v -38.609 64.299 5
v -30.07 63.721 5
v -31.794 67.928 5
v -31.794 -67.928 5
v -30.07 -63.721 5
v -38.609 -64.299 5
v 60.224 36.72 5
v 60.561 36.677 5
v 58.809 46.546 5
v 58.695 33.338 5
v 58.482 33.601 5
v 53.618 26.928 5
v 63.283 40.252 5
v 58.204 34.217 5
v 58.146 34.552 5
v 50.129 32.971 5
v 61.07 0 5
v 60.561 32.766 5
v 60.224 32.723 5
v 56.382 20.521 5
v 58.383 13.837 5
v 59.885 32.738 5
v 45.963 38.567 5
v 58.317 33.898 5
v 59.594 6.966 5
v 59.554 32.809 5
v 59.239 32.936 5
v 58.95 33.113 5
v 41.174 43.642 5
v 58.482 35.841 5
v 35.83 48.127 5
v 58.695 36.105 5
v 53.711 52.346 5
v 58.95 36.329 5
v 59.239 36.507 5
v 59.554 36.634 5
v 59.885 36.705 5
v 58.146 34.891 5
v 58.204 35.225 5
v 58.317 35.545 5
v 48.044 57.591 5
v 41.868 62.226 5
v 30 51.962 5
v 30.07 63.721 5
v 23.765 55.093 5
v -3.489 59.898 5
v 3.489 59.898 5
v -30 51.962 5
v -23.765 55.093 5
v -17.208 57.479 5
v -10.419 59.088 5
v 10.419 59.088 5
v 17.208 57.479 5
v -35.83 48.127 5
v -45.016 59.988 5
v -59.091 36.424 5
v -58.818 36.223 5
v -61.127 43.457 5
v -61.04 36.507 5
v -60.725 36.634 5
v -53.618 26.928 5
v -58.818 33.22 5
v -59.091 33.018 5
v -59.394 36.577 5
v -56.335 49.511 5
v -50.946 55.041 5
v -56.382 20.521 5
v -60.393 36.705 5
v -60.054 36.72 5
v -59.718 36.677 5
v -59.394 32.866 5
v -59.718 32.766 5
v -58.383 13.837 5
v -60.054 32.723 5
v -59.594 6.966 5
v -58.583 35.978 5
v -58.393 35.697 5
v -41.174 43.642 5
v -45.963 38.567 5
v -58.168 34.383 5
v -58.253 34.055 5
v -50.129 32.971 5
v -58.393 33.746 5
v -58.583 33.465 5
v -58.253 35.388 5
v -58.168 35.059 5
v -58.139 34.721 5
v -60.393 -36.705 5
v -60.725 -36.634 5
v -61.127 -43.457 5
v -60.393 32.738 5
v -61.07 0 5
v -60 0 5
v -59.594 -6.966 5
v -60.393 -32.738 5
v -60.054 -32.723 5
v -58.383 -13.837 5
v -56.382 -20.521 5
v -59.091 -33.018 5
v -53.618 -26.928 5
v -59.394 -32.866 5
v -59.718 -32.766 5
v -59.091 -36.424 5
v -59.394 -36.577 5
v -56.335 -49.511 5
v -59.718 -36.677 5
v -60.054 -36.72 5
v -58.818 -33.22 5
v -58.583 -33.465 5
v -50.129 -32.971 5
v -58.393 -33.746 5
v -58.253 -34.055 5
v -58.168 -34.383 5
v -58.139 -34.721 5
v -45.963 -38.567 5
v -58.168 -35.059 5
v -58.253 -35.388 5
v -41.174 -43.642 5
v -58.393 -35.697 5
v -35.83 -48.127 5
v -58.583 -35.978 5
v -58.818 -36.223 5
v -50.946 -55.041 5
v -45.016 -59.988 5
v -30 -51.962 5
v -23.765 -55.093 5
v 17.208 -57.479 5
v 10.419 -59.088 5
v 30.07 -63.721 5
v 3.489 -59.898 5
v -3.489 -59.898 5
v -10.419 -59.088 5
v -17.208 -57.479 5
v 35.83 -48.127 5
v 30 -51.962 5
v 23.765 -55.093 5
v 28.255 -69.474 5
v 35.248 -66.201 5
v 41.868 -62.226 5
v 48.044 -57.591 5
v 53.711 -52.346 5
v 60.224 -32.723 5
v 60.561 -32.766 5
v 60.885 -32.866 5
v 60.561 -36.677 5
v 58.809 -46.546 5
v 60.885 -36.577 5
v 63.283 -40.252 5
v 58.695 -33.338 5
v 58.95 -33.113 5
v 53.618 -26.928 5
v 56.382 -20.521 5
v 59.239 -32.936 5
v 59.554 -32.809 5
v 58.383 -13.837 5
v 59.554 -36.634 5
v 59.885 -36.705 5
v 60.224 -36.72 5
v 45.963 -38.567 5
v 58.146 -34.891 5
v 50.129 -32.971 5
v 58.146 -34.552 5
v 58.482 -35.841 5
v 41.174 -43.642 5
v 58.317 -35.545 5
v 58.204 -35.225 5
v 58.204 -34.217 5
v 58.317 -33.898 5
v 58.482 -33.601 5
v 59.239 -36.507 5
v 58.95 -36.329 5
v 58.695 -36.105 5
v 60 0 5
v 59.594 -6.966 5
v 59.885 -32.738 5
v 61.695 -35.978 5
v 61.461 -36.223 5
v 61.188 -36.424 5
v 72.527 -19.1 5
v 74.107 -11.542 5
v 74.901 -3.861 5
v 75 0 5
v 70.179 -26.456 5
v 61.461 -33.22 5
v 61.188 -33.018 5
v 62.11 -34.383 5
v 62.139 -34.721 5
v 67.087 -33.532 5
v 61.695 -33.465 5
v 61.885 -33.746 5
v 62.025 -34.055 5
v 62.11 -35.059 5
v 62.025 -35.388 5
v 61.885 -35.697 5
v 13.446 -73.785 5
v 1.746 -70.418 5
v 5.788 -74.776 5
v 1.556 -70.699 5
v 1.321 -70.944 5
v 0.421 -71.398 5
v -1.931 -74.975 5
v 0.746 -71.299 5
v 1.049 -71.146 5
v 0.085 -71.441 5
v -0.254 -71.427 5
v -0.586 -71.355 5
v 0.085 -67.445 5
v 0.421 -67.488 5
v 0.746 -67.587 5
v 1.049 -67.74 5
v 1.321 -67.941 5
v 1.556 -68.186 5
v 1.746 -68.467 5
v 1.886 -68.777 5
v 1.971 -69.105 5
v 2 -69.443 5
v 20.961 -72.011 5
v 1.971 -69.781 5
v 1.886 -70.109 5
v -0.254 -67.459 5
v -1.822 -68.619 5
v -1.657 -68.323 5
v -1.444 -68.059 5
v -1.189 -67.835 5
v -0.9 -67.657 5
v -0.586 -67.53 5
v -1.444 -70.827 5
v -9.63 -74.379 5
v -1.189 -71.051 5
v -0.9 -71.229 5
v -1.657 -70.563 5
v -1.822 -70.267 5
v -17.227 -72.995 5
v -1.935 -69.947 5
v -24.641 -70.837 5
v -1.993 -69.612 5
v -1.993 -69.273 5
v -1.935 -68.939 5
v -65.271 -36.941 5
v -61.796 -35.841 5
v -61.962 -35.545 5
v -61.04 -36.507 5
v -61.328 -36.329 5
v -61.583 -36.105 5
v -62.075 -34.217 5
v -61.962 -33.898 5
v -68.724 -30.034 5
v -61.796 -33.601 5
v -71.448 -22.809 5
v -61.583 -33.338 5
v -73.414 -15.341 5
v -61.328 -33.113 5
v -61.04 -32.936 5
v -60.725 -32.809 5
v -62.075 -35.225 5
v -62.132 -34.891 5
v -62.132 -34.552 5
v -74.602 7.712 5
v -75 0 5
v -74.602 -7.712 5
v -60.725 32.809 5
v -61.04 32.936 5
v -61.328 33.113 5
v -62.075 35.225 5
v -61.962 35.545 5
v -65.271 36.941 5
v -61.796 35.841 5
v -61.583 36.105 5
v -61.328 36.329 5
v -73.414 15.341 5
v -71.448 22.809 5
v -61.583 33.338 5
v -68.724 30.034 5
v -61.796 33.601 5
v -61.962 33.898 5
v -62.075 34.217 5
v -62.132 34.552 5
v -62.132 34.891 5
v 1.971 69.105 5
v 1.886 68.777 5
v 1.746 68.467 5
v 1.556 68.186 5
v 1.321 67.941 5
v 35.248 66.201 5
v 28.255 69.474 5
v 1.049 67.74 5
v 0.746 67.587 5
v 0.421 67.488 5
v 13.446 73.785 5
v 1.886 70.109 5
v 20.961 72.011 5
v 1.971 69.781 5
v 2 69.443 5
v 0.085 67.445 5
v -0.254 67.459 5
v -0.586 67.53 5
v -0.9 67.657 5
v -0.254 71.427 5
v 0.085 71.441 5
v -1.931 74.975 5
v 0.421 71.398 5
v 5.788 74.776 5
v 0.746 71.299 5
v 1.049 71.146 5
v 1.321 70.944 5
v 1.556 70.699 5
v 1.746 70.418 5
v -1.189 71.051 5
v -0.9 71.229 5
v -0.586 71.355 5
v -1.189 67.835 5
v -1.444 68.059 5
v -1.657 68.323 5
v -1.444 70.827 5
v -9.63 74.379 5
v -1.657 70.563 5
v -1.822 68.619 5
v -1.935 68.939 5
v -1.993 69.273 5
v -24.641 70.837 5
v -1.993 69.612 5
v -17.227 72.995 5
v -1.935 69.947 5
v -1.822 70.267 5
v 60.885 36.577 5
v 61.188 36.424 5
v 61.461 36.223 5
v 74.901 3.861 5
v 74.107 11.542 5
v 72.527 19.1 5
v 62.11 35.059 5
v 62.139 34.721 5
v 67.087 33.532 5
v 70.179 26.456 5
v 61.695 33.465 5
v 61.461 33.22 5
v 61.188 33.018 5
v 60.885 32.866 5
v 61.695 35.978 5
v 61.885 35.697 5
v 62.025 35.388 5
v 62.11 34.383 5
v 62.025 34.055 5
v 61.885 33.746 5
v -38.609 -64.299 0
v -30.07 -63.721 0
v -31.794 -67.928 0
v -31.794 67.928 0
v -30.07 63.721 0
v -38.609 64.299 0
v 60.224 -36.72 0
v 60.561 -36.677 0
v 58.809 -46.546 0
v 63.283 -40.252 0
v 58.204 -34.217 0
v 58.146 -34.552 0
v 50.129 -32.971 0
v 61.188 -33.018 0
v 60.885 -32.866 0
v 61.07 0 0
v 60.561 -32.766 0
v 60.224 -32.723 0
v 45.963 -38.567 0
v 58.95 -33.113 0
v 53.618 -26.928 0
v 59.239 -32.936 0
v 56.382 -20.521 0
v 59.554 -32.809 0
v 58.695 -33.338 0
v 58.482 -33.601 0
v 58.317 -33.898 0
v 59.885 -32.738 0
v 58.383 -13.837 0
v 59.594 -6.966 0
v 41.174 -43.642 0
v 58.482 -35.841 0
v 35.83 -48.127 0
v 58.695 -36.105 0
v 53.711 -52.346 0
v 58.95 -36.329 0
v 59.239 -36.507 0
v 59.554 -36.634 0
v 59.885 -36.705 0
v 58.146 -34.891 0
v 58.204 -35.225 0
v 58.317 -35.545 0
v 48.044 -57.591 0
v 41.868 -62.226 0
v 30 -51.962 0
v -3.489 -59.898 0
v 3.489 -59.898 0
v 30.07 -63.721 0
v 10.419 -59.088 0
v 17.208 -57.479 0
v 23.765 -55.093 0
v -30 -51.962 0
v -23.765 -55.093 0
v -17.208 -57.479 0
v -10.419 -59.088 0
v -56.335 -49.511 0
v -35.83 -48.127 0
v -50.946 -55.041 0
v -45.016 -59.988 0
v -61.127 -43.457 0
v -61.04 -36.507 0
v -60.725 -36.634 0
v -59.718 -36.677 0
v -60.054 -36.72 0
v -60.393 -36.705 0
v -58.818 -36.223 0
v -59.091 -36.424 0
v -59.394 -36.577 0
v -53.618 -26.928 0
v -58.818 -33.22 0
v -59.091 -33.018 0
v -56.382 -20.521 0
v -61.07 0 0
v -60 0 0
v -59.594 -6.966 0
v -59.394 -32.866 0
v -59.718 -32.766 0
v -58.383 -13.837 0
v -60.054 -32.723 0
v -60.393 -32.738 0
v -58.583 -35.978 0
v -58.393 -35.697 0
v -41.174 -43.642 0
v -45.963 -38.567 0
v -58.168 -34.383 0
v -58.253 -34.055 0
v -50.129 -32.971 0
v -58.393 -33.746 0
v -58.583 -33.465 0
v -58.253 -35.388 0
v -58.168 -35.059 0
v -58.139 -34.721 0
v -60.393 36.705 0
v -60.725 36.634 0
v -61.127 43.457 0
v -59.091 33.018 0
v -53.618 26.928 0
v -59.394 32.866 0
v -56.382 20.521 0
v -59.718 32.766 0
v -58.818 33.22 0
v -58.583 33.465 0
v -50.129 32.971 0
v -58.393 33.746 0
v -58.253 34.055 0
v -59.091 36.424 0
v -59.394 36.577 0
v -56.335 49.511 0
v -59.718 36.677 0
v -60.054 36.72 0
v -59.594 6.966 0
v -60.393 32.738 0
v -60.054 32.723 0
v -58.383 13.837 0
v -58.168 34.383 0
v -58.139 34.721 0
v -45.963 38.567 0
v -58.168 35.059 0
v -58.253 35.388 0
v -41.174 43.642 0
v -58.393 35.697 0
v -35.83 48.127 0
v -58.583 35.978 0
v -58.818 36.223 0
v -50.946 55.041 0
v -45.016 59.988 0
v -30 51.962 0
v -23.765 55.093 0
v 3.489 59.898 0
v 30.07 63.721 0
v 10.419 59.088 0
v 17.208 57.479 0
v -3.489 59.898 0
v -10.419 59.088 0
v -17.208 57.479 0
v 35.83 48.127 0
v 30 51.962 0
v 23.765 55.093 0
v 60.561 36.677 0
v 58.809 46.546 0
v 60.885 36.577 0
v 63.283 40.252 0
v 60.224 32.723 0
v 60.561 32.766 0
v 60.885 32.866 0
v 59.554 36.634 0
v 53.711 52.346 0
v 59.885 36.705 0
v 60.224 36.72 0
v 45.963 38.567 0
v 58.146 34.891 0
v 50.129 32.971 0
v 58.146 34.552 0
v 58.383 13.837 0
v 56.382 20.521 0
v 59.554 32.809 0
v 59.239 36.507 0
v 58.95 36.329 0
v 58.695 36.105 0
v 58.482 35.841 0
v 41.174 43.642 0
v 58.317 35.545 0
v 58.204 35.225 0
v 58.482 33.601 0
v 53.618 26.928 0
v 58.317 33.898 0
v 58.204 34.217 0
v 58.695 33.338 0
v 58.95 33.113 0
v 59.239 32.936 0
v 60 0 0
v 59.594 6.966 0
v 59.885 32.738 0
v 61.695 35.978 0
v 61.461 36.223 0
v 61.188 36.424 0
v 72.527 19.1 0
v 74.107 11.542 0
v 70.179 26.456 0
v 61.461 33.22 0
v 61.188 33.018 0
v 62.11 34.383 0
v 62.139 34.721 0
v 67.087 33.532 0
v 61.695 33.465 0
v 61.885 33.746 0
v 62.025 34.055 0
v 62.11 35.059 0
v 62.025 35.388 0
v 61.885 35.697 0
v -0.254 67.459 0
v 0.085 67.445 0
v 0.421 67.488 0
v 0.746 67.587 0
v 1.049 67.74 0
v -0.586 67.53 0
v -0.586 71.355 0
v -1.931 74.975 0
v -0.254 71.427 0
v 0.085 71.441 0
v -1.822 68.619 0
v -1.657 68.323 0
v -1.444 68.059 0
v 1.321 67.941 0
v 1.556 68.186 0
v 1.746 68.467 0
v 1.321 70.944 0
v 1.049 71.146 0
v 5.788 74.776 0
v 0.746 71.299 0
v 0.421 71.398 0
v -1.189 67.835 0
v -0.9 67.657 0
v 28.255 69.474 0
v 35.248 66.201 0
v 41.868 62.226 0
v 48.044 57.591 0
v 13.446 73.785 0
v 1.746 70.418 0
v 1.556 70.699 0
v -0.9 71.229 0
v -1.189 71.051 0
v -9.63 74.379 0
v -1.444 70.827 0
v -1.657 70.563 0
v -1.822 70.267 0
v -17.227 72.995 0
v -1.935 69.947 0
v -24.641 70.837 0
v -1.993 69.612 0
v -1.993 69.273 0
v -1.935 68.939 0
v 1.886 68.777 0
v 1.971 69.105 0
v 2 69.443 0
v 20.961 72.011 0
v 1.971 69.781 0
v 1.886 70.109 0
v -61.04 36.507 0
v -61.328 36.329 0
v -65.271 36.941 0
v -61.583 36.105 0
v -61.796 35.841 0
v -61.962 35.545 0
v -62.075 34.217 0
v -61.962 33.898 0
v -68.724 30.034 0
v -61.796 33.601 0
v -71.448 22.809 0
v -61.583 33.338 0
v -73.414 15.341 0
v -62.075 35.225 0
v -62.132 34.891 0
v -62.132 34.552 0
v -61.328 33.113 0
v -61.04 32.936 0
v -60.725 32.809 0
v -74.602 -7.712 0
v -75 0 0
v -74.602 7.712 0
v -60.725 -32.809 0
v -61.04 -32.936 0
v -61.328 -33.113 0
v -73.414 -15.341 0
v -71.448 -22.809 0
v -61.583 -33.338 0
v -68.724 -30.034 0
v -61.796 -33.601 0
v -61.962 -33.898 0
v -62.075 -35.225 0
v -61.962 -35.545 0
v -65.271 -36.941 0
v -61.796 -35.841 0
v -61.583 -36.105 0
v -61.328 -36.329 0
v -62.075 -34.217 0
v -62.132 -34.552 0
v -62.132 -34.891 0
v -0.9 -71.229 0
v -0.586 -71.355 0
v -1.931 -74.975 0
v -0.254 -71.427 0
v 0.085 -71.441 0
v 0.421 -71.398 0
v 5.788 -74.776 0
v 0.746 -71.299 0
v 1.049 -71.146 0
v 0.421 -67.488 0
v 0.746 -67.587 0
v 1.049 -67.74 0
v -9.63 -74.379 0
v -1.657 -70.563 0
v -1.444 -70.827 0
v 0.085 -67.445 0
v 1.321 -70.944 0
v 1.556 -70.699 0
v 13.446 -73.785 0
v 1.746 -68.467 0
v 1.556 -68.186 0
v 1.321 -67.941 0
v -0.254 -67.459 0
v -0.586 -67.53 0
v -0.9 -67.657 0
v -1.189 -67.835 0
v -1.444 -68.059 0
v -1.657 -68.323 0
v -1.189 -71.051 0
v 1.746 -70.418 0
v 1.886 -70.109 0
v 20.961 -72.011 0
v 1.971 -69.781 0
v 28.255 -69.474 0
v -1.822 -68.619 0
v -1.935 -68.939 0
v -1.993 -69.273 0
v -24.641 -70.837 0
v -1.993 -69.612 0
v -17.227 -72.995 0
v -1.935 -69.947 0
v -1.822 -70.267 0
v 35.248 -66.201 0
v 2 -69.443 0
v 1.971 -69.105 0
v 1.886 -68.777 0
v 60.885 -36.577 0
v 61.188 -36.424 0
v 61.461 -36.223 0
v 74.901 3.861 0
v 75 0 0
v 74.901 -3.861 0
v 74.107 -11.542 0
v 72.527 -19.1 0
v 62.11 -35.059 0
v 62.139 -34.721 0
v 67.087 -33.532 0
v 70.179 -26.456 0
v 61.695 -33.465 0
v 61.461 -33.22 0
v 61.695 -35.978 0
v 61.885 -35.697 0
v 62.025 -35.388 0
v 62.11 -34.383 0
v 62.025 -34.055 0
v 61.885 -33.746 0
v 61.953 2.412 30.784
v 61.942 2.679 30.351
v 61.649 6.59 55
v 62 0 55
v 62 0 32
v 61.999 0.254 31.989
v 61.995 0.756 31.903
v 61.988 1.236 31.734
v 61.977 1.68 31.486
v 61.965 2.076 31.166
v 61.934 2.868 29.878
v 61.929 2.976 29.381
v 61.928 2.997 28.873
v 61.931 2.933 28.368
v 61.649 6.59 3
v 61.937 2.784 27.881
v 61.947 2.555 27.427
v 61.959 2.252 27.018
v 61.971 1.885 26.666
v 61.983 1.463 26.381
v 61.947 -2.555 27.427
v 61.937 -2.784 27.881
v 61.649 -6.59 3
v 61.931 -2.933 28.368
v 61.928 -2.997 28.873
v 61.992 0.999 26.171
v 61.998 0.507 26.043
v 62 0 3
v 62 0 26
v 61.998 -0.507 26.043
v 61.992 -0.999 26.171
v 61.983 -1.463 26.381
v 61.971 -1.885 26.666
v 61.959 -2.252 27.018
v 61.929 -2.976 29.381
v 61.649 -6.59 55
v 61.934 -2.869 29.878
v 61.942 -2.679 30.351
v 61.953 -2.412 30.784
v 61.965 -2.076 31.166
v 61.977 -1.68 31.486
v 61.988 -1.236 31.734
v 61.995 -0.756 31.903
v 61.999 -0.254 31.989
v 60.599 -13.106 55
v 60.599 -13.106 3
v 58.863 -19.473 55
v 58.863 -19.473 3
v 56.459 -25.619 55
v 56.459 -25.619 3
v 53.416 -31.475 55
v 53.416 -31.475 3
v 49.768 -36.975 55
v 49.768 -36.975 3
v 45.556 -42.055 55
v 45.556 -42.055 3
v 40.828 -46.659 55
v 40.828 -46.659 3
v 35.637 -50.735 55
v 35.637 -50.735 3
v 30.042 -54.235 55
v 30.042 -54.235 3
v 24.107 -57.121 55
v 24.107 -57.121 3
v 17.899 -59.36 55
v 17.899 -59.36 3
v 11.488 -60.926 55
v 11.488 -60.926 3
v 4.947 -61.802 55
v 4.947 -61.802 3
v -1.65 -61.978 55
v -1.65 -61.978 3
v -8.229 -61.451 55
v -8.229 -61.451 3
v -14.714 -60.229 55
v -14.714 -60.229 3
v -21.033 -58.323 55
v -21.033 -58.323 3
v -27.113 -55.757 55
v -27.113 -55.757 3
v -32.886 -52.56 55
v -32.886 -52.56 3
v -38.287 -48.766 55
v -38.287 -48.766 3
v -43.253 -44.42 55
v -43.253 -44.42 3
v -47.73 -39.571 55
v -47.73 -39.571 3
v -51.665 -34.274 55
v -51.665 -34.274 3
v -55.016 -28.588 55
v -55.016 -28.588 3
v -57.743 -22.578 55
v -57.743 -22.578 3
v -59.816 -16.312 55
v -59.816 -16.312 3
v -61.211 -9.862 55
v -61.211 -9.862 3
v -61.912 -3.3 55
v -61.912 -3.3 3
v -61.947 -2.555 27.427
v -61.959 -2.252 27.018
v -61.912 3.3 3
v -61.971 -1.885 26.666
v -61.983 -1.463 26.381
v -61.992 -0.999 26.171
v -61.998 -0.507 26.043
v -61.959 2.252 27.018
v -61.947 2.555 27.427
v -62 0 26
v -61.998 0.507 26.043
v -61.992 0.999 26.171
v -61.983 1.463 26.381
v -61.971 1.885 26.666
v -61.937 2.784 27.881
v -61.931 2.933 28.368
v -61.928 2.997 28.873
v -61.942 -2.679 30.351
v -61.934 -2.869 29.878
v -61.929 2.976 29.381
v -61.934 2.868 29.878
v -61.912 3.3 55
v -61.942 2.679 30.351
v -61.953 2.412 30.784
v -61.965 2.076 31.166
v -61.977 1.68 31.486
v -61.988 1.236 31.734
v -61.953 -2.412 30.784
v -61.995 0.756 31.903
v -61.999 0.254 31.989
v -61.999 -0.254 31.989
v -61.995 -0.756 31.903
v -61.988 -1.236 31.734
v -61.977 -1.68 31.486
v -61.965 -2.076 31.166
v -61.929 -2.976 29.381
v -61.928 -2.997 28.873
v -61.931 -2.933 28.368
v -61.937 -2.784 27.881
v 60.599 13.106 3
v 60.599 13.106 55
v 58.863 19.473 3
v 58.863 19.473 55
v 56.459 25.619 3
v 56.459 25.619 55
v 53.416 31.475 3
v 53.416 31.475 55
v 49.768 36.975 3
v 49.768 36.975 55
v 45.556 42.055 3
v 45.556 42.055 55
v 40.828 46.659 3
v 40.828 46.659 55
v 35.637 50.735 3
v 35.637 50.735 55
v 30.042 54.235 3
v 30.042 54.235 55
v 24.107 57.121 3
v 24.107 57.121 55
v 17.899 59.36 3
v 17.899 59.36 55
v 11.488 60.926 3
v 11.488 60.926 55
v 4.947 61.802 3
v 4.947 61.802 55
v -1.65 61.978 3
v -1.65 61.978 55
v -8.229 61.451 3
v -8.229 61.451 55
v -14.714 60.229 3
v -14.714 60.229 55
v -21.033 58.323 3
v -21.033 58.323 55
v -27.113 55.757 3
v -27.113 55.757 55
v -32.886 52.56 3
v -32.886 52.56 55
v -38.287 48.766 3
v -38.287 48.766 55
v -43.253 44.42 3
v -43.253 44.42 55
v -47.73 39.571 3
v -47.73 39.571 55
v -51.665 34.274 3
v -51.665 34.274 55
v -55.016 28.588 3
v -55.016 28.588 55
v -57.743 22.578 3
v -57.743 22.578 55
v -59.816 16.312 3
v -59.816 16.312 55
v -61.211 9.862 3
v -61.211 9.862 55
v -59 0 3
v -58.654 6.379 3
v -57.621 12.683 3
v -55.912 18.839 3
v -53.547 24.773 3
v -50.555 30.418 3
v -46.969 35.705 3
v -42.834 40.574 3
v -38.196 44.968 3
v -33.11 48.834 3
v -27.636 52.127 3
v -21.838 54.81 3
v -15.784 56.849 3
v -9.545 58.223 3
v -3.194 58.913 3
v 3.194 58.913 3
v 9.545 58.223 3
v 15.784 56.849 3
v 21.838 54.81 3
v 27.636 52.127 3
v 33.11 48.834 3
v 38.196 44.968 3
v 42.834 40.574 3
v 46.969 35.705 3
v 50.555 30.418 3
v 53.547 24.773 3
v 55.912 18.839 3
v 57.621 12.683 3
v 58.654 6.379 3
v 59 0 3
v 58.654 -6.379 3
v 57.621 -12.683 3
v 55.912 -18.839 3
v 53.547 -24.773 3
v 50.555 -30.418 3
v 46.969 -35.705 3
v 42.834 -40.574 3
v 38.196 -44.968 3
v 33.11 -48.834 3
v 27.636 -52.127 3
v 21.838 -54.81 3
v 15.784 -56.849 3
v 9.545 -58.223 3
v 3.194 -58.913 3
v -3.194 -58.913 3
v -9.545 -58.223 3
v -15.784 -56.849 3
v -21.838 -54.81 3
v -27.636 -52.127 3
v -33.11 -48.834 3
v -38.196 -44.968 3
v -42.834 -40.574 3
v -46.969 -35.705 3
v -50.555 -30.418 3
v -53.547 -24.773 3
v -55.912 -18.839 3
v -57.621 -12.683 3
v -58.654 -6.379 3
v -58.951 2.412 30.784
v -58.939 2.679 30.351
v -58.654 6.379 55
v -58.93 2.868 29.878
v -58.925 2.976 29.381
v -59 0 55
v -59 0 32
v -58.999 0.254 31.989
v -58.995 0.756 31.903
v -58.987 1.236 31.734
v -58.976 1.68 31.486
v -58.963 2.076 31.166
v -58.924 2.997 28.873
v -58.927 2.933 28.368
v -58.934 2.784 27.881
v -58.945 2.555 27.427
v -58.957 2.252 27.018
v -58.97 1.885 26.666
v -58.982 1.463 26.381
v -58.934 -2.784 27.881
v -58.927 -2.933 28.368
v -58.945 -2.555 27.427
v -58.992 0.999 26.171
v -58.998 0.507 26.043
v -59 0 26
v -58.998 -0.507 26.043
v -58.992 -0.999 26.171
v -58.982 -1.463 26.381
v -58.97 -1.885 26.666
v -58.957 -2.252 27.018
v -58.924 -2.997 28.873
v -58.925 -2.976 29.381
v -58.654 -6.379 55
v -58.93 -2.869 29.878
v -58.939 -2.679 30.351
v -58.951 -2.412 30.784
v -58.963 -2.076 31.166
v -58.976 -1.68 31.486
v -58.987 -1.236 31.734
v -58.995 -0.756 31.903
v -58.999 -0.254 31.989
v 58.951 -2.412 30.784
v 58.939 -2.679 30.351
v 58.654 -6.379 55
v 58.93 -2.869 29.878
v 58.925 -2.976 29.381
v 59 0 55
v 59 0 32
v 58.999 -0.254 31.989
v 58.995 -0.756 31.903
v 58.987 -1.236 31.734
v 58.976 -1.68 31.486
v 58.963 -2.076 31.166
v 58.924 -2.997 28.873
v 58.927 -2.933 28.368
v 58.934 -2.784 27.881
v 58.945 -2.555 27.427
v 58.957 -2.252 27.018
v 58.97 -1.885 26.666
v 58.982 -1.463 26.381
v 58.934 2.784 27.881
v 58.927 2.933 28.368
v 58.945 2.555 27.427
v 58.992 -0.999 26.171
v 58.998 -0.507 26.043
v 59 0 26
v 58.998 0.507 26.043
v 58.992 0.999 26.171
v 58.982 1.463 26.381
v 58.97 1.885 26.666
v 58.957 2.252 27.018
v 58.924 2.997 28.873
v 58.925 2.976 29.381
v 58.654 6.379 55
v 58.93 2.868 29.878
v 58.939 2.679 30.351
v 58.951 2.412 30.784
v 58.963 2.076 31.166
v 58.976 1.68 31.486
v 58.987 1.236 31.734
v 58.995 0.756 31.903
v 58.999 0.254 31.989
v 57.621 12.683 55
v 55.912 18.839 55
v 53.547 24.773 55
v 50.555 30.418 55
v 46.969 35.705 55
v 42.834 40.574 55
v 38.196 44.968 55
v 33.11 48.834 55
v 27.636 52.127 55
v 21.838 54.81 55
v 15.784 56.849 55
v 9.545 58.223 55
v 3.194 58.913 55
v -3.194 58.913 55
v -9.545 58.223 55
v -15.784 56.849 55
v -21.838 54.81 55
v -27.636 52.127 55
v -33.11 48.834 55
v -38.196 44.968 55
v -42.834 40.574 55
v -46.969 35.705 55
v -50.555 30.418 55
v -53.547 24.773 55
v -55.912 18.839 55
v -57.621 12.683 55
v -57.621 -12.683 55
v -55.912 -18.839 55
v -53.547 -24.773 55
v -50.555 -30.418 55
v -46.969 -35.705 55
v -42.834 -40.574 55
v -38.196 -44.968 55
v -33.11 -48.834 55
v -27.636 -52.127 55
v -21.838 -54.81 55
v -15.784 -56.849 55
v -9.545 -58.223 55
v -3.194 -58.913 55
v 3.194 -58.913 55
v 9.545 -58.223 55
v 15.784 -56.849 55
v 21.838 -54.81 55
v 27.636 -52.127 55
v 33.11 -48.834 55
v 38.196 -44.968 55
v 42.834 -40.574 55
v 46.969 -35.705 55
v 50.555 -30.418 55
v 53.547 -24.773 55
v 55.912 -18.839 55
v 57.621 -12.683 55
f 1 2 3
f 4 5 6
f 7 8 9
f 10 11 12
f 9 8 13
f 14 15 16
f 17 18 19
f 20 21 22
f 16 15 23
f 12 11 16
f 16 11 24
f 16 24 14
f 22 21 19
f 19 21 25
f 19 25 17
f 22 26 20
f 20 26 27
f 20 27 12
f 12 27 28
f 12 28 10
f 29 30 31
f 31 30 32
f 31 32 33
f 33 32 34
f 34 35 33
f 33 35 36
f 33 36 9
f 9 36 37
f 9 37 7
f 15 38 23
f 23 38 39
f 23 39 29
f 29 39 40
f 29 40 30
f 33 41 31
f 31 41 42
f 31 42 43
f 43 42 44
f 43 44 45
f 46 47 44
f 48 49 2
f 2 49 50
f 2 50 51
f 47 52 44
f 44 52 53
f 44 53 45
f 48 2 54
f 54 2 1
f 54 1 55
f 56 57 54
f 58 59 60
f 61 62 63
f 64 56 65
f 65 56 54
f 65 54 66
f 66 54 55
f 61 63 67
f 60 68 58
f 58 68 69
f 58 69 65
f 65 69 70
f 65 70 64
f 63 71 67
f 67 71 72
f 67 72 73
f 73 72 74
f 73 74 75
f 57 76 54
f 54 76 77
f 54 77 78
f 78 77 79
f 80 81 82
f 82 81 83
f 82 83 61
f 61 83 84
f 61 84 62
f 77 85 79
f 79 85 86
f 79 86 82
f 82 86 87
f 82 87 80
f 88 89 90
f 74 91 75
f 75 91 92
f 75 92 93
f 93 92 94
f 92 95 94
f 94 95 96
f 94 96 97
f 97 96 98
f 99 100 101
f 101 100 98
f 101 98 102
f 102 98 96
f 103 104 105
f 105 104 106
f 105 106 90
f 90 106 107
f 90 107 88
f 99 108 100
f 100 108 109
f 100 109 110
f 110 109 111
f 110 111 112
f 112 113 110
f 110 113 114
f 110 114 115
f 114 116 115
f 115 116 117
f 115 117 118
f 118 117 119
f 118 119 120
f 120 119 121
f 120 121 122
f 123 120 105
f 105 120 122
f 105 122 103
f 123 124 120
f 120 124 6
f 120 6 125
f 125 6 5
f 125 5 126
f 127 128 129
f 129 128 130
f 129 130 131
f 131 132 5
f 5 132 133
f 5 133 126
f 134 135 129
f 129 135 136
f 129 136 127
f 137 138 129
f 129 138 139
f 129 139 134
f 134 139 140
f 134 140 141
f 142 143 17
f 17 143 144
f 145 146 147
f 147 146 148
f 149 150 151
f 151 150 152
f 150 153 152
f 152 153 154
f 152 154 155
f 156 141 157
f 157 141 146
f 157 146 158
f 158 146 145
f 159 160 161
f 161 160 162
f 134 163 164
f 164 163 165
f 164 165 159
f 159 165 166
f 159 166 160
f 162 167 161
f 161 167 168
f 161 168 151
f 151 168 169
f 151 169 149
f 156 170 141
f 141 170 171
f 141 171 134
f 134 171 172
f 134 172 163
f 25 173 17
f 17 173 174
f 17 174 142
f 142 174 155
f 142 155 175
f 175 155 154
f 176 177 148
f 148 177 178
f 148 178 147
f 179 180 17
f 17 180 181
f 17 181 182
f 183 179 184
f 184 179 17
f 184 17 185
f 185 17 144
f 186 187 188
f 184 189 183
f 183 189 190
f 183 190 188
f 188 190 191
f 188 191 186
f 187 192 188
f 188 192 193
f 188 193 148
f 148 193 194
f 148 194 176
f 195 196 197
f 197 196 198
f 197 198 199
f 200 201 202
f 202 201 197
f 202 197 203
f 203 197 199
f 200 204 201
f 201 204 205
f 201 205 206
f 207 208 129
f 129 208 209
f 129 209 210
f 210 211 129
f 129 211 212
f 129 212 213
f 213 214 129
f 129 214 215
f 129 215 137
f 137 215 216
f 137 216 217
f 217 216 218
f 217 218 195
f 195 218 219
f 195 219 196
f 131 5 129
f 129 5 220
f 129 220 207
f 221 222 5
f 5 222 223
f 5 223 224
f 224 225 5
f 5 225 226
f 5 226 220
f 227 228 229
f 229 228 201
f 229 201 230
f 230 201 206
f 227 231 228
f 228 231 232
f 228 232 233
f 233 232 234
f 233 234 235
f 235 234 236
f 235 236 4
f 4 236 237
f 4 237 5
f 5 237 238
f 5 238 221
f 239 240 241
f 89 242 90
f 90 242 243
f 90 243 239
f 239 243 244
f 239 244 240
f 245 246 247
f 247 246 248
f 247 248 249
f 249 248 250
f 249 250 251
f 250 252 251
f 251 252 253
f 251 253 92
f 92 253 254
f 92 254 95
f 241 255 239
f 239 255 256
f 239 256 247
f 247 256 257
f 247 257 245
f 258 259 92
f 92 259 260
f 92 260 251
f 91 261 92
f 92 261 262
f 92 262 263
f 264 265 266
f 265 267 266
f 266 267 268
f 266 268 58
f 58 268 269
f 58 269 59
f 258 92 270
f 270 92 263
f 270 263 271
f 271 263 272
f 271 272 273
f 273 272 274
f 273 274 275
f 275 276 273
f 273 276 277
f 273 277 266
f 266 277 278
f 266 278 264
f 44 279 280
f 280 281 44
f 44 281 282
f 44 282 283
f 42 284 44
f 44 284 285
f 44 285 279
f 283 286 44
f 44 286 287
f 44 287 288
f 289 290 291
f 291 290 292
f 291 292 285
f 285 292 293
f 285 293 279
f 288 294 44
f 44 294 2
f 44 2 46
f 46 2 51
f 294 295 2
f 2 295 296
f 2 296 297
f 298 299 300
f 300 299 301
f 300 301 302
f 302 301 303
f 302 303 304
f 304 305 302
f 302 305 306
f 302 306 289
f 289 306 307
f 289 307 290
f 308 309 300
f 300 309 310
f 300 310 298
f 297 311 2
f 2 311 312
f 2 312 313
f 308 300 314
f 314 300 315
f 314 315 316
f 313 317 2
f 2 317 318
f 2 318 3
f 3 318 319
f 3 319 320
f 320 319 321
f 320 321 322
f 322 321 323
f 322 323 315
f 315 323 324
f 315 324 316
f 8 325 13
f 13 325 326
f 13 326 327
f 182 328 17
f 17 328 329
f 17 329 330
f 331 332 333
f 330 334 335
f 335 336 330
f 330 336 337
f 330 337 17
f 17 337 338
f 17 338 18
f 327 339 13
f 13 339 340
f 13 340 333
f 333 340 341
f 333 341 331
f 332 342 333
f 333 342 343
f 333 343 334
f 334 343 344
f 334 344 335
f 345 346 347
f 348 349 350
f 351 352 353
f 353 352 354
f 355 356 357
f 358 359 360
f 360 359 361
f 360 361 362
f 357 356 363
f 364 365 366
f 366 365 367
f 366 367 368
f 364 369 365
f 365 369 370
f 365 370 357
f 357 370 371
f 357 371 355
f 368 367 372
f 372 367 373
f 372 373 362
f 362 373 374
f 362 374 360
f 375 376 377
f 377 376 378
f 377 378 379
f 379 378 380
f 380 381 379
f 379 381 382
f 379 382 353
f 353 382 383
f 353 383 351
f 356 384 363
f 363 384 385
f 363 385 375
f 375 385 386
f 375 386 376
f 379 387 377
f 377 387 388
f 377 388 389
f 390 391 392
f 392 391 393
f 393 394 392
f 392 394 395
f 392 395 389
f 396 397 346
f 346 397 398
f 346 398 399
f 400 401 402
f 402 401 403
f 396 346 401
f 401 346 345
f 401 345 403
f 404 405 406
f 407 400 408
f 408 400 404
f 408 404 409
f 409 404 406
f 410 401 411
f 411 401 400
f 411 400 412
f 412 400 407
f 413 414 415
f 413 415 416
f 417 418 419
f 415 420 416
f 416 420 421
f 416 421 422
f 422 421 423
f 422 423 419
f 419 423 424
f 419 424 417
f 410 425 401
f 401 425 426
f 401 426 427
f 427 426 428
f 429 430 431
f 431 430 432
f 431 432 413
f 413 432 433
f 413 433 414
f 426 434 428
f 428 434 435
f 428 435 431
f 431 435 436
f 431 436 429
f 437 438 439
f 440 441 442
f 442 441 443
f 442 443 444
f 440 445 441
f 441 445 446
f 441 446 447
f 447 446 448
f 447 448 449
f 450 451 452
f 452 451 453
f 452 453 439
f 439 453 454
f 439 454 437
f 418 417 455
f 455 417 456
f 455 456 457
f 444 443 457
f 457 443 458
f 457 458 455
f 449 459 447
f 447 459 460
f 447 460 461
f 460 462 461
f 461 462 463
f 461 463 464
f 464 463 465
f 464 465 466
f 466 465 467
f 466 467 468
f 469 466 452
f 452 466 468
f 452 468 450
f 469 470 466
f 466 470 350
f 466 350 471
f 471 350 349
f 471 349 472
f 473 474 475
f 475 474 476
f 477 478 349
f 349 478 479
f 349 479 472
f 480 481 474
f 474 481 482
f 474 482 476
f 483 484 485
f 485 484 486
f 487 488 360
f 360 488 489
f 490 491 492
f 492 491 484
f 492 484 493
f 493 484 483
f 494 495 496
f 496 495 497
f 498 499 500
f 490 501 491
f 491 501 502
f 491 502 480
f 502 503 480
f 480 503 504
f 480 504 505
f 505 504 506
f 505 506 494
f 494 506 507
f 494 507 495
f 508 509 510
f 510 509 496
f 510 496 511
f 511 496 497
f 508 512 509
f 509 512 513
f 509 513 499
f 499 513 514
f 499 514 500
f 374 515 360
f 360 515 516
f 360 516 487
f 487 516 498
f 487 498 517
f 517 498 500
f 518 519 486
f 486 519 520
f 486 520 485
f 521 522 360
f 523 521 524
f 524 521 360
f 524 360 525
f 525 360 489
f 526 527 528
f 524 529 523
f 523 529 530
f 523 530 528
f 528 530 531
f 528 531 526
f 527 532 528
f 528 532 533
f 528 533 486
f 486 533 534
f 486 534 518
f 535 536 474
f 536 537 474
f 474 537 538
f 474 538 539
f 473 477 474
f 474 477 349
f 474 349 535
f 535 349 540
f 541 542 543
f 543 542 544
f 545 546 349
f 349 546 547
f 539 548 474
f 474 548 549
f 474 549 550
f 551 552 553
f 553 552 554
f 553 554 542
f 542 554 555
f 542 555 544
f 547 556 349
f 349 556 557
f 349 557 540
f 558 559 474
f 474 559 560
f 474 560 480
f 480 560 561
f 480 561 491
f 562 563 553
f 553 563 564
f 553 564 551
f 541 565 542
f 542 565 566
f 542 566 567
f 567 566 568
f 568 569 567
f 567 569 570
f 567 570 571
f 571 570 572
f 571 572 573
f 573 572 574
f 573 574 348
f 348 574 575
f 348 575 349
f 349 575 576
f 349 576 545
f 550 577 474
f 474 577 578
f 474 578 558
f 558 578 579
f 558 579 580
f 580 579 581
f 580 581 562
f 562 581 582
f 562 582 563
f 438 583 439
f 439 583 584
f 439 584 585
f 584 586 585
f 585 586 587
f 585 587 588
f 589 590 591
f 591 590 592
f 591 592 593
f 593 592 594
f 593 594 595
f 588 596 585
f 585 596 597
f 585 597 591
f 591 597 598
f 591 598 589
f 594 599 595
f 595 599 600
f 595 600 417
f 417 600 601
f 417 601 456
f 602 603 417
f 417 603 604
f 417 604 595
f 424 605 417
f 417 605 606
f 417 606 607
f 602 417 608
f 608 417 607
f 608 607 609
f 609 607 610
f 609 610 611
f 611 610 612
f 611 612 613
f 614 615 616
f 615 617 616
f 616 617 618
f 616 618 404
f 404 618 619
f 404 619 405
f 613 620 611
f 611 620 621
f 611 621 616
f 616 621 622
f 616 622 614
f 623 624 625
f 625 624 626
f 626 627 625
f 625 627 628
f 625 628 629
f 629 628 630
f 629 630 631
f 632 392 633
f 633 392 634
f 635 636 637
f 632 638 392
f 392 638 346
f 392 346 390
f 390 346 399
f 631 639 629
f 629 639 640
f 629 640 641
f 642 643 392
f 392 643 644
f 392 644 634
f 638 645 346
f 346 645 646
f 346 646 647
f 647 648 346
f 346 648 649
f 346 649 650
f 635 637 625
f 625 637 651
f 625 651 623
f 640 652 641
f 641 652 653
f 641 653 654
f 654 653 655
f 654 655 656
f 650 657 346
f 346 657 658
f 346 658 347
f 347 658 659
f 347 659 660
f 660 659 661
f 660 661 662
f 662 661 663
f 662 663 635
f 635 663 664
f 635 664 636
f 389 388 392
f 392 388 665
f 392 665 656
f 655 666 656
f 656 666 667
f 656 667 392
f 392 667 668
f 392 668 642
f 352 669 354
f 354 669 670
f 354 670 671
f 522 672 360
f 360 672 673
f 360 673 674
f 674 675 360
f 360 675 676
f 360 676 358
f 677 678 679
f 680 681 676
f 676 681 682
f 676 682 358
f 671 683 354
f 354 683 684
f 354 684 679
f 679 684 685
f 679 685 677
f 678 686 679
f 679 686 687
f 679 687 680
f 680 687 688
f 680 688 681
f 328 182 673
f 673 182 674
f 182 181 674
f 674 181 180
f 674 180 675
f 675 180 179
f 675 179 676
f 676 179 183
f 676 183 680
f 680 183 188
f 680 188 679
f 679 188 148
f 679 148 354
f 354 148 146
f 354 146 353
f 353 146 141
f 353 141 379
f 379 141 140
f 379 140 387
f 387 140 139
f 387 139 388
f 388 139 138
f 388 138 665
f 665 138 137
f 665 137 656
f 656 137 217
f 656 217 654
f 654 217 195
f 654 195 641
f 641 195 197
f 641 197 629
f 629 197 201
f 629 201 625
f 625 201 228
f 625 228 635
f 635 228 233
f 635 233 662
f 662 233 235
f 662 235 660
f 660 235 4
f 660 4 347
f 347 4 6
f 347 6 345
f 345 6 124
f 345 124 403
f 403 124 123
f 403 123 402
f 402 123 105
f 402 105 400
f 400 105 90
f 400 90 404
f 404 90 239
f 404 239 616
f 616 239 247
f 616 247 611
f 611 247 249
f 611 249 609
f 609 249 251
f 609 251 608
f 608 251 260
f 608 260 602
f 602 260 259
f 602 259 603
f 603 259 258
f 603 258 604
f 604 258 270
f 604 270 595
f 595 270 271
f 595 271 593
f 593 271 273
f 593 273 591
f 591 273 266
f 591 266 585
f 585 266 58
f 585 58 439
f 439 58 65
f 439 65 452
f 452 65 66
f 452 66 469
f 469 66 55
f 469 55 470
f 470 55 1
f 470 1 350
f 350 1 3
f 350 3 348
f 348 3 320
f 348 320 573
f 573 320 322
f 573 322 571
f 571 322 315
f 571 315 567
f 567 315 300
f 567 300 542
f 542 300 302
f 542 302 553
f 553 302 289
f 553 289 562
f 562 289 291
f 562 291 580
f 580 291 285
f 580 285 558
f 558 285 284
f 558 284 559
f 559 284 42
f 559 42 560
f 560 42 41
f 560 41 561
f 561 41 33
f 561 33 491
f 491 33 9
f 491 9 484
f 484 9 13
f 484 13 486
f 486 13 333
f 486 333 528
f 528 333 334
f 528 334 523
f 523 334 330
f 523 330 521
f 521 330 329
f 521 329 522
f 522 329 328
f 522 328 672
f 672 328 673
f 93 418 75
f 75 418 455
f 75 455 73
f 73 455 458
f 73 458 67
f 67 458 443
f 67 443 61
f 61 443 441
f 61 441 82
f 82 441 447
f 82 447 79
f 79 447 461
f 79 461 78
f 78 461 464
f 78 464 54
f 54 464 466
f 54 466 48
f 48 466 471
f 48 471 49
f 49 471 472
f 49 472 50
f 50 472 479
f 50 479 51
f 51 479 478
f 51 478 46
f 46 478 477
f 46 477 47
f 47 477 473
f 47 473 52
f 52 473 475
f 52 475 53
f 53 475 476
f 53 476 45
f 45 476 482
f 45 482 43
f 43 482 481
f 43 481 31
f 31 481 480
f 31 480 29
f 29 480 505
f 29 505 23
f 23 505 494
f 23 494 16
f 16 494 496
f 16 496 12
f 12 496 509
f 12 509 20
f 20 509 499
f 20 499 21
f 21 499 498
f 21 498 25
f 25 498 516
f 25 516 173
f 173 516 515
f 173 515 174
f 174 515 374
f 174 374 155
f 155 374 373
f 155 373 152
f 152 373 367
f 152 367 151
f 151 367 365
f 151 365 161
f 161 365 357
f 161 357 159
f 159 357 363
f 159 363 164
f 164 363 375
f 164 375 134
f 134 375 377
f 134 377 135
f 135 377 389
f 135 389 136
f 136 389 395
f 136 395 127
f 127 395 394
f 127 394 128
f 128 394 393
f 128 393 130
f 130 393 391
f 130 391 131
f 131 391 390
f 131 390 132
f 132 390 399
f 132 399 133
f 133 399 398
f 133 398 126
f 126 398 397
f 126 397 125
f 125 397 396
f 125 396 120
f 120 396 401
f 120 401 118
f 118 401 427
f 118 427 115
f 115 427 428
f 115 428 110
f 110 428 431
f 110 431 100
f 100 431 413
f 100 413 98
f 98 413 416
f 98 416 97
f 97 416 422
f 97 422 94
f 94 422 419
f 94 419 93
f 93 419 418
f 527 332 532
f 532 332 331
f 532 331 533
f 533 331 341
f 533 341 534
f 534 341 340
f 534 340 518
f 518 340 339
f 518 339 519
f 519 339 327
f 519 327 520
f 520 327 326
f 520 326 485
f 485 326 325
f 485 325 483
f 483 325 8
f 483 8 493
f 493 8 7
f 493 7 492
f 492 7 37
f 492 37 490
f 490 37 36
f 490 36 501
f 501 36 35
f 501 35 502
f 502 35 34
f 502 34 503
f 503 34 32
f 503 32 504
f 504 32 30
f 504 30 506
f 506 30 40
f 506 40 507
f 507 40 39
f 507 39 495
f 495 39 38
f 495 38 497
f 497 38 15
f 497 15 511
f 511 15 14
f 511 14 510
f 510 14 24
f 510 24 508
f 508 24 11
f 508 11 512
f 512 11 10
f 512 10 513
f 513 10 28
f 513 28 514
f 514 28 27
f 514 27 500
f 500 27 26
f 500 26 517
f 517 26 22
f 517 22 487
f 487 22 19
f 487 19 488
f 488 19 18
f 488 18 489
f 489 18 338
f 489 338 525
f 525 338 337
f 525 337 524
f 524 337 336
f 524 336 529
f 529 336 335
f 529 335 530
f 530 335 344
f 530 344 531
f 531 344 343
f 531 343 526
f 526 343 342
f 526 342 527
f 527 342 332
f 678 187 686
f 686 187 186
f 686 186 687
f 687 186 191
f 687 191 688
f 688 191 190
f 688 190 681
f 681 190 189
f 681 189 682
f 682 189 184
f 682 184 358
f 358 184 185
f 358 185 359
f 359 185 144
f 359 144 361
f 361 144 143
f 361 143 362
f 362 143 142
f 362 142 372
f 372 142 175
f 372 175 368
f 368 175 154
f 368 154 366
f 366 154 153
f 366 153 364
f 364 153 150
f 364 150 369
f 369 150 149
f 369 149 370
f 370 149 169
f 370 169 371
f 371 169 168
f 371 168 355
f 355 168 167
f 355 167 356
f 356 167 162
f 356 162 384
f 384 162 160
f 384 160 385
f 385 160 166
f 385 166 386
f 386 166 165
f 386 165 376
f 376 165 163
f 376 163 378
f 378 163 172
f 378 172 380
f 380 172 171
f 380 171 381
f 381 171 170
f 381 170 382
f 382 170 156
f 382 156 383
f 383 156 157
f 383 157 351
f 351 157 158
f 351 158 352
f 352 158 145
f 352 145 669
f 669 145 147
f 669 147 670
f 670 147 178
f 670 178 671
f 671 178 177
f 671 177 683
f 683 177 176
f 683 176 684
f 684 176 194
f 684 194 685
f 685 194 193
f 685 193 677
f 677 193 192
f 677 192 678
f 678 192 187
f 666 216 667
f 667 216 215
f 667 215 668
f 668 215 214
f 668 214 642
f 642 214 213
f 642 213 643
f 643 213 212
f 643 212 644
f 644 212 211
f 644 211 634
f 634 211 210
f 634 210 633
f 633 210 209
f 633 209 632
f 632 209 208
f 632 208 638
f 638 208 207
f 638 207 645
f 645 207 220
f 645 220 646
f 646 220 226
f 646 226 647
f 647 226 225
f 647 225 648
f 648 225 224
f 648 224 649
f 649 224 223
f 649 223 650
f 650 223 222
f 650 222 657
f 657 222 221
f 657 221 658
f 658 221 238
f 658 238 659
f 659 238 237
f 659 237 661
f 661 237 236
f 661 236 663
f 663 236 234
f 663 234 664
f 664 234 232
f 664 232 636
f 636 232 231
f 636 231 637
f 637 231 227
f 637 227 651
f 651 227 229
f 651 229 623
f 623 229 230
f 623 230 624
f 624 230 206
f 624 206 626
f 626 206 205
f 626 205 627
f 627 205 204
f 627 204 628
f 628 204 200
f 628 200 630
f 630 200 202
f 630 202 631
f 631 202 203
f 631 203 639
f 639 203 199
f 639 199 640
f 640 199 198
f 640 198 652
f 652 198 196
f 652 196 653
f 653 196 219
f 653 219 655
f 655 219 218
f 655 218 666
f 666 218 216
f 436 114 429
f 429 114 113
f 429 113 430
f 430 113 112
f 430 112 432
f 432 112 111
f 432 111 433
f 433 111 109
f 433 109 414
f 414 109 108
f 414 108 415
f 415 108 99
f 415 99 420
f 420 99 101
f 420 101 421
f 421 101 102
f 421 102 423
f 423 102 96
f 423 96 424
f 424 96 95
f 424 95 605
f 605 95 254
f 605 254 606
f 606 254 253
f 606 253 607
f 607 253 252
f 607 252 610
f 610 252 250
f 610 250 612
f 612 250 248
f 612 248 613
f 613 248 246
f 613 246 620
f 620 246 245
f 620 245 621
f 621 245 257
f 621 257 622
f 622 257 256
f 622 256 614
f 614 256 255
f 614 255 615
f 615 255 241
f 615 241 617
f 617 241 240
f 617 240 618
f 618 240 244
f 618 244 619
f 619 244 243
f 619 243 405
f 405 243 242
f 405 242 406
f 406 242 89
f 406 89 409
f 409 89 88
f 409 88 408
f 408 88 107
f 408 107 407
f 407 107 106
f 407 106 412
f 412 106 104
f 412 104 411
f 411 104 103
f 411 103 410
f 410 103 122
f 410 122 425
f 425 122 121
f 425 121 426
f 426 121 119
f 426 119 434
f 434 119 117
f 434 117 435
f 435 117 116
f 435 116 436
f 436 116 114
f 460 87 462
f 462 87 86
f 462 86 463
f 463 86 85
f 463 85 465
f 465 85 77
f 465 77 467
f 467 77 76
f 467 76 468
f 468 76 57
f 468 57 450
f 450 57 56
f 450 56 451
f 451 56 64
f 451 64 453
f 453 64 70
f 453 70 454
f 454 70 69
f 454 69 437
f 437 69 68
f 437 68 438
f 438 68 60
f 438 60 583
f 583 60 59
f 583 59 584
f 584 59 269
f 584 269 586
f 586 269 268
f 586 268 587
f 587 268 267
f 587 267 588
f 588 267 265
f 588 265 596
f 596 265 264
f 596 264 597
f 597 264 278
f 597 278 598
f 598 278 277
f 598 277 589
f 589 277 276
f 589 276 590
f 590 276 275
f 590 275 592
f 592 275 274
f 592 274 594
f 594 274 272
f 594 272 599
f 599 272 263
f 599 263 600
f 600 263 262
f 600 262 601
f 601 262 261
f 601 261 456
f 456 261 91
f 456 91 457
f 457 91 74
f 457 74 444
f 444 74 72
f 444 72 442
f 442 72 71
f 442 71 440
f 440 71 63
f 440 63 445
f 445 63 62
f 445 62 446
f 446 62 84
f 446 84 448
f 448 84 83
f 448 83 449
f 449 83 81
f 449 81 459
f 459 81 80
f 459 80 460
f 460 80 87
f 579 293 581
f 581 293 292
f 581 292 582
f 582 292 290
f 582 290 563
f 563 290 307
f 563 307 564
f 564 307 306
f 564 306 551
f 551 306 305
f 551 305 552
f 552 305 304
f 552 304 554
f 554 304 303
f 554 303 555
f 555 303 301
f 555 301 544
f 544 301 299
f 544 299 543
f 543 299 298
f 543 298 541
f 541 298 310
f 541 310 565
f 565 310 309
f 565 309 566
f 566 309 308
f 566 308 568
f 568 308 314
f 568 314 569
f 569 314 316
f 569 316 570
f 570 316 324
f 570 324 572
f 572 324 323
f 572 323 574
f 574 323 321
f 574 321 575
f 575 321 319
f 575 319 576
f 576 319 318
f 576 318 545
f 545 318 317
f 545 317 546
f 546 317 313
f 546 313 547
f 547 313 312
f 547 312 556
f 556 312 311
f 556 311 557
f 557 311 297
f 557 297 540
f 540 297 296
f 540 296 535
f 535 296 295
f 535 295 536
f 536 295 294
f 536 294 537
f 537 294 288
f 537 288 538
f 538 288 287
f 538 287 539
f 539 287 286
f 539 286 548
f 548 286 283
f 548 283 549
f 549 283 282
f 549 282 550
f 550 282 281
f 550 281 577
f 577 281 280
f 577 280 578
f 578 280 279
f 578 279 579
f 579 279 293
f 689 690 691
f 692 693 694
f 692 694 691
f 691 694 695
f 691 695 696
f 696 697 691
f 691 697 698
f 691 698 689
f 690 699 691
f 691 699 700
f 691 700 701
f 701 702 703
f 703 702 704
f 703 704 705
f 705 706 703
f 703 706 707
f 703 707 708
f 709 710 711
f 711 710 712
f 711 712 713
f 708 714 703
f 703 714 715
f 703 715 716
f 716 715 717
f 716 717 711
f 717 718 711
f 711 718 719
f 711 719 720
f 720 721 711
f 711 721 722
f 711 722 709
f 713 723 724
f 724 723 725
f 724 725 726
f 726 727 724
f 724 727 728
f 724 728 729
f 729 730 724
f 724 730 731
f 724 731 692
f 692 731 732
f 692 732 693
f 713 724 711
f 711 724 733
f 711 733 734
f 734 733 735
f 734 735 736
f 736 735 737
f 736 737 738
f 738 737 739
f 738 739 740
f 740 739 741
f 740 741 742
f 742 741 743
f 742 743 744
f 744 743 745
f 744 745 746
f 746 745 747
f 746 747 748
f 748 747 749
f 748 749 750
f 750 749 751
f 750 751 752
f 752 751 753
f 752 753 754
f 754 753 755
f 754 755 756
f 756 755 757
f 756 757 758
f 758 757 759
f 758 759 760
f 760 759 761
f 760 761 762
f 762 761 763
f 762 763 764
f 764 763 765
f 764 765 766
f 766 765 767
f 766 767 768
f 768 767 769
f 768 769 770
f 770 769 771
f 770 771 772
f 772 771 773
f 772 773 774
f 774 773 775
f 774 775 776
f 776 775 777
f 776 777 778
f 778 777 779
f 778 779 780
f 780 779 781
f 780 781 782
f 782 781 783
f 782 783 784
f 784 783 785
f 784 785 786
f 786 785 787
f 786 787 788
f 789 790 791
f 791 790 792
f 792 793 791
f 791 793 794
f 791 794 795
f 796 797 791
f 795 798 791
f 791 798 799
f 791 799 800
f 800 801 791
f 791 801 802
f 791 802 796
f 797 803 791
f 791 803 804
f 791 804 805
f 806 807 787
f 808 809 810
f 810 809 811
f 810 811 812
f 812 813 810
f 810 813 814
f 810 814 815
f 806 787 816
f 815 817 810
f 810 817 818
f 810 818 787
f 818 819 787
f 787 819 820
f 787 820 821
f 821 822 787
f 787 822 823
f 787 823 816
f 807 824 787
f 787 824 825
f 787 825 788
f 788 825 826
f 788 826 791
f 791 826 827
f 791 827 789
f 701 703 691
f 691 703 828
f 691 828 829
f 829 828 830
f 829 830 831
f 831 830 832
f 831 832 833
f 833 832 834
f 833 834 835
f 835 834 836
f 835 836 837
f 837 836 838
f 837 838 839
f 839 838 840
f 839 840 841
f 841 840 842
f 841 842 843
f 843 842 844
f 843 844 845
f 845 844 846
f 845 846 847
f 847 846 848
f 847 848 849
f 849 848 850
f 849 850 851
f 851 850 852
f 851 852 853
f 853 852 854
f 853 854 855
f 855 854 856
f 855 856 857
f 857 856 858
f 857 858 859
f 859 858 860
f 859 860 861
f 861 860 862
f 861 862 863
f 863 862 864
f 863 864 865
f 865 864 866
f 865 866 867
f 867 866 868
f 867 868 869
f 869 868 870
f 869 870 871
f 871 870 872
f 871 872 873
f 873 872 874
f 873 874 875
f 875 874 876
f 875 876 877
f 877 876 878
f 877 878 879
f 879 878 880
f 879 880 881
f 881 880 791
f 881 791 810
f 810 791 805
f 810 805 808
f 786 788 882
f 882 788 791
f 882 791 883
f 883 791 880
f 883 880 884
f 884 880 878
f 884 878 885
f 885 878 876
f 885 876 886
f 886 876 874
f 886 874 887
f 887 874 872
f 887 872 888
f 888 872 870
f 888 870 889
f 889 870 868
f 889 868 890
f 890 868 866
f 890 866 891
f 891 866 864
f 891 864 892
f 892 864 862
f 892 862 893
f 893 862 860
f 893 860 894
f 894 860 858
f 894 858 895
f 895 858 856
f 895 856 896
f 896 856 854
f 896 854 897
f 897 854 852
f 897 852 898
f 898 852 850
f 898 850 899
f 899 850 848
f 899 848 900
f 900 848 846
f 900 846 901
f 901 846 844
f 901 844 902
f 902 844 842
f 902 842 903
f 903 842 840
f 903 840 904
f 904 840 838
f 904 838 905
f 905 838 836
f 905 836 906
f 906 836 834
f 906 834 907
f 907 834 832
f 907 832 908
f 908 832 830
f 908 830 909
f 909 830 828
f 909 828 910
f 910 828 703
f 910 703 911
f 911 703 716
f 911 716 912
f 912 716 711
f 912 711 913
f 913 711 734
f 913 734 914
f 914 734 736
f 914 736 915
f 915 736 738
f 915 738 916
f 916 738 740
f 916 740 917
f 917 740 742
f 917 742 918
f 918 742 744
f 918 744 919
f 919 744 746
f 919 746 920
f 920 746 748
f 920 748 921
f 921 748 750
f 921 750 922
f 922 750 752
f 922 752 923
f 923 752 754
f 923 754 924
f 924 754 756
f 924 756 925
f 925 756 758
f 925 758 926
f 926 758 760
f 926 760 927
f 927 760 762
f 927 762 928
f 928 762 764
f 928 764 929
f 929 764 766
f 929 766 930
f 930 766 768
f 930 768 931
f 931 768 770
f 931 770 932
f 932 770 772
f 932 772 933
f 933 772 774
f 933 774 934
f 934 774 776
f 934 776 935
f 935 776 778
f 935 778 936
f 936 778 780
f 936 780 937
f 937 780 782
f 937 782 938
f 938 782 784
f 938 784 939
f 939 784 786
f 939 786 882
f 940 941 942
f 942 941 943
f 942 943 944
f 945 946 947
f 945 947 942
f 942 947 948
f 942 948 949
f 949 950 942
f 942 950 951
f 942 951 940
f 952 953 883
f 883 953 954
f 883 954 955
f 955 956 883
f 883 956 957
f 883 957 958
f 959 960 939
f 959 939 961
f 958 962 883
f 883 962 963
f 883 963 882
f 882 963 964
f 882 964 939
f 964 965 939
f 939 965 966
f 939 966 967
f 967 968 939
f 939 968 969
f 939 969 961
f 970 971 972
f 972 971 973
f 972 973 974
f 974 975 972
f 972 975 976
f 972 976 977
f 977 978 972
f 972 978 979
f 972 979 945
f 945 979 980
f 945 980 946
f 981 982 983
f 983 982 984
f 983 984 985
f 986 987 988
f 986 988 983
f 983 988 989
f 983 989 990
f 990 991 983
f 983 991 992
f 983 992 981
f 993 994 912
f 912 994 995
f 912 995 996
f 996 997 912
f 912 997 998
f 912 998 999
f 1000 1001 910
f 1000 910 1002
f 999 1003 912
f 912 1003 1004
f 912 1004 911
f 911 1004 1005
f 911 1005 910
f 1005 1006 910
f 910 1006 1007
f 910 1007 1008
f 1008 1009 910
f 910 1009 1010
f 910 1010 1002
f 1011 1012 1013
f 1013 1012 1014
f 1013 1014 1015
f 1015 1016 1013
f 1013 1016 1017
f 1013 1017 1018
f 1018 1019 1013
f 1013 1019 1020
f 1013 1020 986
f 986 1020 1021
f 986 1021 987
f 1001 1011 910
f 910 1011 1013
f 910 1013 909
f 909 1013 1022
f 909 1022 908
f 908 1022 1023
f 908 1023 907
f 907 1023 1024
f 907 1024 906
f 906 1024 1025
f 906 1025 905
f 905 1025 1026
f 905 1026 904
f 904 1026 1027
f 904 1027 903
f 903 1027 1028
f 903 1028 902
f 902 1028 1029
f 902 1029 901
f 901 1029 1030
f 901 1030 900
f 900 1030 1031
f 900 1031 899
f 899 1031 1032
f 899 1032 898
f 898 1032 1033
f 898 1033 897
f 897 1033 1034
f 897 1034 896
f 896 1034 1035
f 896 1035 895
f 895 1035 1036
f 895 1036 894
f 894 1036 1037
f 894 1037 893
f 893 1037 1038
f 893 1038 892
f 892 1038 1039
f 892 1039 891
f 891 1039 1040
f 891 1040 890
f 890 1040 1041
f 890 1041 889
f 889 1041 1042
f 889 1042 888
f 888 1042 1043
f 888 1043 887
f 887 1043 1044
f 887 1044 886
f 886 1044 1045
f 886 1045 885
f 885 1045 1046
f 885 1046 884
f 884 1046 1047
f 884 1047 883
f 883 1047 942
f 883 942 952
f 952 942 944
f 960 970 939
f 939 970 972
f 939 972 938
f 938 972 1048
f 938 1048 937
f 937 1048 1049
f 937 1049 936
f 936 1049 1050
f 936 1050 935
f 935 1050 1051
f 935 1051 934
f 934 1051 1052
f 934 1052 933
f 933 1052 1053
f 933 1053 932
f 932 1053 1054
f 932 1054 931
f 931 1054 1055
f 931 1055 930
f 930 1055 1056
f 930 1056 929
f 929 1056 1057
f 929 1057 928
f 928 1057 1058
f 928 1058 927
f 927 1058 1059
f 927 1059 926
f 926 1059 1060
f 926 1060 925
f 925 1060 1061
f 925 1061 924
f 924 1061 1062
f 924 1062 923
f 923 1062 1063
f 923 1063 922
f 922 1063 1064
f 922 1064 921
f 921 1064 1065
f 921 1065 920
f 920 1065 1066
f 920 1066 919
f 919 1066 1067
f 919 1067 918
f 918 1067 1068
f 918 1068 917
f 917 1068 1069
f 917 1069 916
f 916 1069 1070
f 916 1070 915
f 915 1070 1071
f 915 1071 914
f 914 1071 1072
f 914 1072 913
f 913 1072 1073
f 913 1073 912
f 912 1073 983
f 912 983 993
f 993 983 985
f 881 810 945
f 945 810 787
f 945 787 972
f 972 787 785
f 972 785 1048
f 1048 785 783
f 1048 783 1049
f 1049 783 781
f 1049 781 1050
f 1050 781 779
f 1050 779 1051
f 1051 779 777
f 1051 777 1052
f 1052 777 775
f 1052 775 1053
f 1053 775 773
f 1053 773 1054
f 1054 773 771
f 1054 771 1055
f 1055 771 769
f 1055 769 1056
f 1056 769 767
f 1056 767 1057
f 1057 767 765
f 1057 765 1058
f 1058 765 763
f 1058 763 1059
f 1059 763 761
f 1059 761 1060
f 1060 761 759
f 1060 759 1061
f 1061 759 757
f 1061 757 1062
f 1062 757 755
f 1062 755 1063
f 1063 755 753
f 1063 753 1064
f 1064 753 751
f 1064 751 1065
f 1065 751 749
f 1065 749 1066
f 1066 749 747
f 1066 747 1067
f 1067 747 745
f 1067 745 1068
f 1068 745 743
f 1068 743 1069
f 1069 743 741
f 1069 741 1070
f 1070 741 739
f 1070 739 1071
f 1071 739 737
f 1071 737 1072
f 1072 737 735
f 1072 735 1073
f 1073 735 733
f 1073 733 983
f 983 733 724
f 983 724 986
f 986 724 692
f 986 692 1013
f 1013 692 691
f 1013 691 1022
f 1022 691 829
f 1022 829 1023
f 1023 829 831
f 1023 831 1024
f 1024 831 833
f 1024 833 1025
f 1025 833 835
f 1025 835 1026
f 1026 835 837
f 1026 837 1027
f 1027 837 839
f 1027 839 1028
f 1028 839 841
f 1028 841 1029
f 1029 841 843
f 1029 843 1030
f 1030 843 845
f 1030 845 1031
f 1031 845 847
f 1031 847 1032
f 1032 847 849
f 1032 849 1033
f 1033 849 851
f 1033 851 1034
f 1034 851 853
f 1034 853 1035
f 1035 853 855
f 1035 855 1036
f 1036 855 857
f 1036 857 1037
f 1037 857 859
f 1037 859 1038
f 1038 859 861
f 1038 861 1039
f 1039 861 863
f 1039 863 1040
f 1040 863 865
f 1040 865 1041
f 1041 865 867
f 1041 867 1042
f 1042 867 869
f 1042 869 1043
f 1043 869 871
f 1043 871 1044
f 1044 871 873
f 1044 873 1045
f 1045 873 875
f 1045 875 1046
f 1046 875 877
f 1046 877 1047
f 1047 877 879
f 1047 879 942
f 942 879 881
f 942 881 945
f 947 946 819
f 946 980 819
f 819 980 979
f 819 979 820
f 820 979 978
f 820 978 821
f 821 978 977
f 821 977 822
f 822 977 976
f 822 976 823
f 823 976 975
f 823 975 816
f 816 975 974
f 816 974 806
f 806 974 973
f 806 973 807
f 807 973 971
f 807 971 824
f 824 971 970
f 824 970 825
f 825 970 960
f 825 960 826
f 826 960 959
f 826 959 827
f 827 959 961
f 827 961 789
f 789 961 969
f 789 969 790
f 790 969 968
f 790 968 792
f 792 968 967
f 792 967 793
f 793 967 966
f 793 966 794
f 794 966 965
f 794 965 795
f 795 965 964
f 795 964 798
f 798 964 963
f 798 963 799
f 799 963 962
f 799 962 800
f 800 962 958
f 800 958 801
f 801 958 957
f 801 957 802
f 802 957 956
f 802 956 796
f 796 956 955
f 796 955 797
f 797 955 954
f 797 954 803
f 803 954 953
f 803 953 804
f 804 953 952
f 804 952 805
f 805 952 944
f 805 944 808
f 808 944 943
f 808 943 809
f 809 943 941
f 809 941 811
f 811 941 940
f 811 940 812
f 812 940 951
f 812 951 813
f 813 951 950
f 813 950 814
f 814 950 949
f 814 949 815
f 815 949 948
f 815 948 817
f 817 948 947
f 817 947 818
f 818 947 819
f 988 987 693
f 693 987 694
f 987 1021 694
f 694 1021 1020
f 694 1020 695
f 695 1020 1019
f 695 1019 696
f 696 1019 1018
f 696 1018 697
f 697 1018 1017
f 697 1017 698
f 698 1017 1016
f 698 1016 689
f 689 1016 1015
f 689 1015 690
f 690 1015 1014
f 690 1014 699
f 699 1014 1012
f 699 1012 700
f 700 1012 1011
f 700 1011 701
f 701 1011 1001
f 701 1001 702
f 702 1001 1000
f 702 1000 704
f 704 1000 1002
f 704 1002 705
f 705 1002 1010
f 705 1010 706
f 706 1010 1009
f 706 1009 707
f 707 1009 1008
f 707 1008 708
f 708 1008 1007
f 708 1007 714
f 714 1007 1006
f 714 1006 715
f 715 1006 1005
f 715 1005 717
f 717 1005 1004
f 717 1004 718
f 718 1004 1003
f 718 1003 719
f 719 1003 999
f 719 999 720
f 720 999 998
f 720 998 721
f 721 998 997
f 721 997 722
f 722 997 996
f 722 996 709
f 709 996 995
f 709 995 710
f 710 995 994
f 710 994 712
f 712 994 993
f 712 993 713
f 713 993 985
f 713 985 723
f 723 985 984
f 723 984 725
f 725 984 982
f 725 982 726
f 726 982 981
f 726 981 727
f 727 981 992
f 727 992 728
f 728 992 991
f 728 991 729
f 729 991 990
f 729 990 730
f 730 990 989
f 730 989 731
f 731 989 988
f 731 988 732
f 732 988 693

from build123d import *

# Parameters (mm, degrees)
SKETCH_1_R               = 75
SKETCH_1_R_2             = 60
EXTRUDE_1_DEPTH          = 5
EXTRUDE_2_DEPTH          = 50
EXTRUDE_2_DEPTH_BACK     = 2
SKETCH_2_R               = 62
SKETCH_2_R_2             = 59
SKETCH_3_R               = 2
CUT_EXTRUDE_1_DEPTH      = 118.260393996
CUT_EXTRUDE_2_DEPTH      = 120.478031453
CUT_EXTRUDE_2_DEPTH_BACK = 120.478031453
SKETCH_5_R               = 3


with BuildPart() as part:
    # Эскиз1 → Бобышка-Вытянуть1 (new body)
    with BuildSketch(Plane.XY):
        Circle(SKETCH_1_R)
        Circle(SKETCH_1_R_2, mode=Mode.SUBTRACT)
    extrude(amount=EXTRUDE_1_DEPTH)

    # Эскиз3 → Вырез-Вытянуть1 (cut, through all)
    with BuildSketch(Plane.XY.offset(5)):
        with Locations((0, 69.442803579)):
            Circle(SKETCH_3_R)
        with Locations((60.139232009, 34.72140179)):
            Circle(SKETCH_3_R)
        with Locations((60.139232009, -34.72140179)):
            Circle(SKETCH_3_R)
        with Locations((0, -69.442803579)):
            Circle(SKETCH_3_R)
        with Locations((-60.139232009, -34.72140179)):
            Circle(SKETCH_3_R)
        with Locations((-60.139232009, 34.72140179)):
            Circle(SKETCH_3_R)
    extrude(amount=-CUT_EXTRUDE_1_DEPTH, mode=Mode.SUBTRACT)


with BuildPart() as body_2:
    # Эскиз2 → Бобышка-Вытянуть2 (new, two sides: drawn at the far end of the back side and taken through both)
    with BuildSketch(Plane.XY.offset(5).offset(-EXTRUDE_2_DEPTH_BACK)):
        Circle(SKETCH_2_R)
        Circle(SKETCH_2_R_2, mode=Mode.SUBTRACT)
    extrude(amount=EXTRUDE_2_DEPTH + EXTRUDE_2_DEPTH_BACK)

    # Эскиз5 → Вырез-Вытянуть2 (cut, two sides: drawn at the far end of the back side and taken through both)
    with BuildSketch(Plane(origin=(0, 0, 0), x_dir=(0, 0, -1), z_dir=(1, 0, 0)).offset(-CUT_EXTRUDE_2_DEPTH_BACK)):
        with Locations((-29, 0)):
            Circle(SKETCH_5_R)
    extrude(amount=CUT_EXTRUDE_2_DEPTH + CUT_EXTRUDE_2_DEPTH_BACK, mode=Mode.SUBTRACT)


solid = Compound([part.part, body_2.part])
